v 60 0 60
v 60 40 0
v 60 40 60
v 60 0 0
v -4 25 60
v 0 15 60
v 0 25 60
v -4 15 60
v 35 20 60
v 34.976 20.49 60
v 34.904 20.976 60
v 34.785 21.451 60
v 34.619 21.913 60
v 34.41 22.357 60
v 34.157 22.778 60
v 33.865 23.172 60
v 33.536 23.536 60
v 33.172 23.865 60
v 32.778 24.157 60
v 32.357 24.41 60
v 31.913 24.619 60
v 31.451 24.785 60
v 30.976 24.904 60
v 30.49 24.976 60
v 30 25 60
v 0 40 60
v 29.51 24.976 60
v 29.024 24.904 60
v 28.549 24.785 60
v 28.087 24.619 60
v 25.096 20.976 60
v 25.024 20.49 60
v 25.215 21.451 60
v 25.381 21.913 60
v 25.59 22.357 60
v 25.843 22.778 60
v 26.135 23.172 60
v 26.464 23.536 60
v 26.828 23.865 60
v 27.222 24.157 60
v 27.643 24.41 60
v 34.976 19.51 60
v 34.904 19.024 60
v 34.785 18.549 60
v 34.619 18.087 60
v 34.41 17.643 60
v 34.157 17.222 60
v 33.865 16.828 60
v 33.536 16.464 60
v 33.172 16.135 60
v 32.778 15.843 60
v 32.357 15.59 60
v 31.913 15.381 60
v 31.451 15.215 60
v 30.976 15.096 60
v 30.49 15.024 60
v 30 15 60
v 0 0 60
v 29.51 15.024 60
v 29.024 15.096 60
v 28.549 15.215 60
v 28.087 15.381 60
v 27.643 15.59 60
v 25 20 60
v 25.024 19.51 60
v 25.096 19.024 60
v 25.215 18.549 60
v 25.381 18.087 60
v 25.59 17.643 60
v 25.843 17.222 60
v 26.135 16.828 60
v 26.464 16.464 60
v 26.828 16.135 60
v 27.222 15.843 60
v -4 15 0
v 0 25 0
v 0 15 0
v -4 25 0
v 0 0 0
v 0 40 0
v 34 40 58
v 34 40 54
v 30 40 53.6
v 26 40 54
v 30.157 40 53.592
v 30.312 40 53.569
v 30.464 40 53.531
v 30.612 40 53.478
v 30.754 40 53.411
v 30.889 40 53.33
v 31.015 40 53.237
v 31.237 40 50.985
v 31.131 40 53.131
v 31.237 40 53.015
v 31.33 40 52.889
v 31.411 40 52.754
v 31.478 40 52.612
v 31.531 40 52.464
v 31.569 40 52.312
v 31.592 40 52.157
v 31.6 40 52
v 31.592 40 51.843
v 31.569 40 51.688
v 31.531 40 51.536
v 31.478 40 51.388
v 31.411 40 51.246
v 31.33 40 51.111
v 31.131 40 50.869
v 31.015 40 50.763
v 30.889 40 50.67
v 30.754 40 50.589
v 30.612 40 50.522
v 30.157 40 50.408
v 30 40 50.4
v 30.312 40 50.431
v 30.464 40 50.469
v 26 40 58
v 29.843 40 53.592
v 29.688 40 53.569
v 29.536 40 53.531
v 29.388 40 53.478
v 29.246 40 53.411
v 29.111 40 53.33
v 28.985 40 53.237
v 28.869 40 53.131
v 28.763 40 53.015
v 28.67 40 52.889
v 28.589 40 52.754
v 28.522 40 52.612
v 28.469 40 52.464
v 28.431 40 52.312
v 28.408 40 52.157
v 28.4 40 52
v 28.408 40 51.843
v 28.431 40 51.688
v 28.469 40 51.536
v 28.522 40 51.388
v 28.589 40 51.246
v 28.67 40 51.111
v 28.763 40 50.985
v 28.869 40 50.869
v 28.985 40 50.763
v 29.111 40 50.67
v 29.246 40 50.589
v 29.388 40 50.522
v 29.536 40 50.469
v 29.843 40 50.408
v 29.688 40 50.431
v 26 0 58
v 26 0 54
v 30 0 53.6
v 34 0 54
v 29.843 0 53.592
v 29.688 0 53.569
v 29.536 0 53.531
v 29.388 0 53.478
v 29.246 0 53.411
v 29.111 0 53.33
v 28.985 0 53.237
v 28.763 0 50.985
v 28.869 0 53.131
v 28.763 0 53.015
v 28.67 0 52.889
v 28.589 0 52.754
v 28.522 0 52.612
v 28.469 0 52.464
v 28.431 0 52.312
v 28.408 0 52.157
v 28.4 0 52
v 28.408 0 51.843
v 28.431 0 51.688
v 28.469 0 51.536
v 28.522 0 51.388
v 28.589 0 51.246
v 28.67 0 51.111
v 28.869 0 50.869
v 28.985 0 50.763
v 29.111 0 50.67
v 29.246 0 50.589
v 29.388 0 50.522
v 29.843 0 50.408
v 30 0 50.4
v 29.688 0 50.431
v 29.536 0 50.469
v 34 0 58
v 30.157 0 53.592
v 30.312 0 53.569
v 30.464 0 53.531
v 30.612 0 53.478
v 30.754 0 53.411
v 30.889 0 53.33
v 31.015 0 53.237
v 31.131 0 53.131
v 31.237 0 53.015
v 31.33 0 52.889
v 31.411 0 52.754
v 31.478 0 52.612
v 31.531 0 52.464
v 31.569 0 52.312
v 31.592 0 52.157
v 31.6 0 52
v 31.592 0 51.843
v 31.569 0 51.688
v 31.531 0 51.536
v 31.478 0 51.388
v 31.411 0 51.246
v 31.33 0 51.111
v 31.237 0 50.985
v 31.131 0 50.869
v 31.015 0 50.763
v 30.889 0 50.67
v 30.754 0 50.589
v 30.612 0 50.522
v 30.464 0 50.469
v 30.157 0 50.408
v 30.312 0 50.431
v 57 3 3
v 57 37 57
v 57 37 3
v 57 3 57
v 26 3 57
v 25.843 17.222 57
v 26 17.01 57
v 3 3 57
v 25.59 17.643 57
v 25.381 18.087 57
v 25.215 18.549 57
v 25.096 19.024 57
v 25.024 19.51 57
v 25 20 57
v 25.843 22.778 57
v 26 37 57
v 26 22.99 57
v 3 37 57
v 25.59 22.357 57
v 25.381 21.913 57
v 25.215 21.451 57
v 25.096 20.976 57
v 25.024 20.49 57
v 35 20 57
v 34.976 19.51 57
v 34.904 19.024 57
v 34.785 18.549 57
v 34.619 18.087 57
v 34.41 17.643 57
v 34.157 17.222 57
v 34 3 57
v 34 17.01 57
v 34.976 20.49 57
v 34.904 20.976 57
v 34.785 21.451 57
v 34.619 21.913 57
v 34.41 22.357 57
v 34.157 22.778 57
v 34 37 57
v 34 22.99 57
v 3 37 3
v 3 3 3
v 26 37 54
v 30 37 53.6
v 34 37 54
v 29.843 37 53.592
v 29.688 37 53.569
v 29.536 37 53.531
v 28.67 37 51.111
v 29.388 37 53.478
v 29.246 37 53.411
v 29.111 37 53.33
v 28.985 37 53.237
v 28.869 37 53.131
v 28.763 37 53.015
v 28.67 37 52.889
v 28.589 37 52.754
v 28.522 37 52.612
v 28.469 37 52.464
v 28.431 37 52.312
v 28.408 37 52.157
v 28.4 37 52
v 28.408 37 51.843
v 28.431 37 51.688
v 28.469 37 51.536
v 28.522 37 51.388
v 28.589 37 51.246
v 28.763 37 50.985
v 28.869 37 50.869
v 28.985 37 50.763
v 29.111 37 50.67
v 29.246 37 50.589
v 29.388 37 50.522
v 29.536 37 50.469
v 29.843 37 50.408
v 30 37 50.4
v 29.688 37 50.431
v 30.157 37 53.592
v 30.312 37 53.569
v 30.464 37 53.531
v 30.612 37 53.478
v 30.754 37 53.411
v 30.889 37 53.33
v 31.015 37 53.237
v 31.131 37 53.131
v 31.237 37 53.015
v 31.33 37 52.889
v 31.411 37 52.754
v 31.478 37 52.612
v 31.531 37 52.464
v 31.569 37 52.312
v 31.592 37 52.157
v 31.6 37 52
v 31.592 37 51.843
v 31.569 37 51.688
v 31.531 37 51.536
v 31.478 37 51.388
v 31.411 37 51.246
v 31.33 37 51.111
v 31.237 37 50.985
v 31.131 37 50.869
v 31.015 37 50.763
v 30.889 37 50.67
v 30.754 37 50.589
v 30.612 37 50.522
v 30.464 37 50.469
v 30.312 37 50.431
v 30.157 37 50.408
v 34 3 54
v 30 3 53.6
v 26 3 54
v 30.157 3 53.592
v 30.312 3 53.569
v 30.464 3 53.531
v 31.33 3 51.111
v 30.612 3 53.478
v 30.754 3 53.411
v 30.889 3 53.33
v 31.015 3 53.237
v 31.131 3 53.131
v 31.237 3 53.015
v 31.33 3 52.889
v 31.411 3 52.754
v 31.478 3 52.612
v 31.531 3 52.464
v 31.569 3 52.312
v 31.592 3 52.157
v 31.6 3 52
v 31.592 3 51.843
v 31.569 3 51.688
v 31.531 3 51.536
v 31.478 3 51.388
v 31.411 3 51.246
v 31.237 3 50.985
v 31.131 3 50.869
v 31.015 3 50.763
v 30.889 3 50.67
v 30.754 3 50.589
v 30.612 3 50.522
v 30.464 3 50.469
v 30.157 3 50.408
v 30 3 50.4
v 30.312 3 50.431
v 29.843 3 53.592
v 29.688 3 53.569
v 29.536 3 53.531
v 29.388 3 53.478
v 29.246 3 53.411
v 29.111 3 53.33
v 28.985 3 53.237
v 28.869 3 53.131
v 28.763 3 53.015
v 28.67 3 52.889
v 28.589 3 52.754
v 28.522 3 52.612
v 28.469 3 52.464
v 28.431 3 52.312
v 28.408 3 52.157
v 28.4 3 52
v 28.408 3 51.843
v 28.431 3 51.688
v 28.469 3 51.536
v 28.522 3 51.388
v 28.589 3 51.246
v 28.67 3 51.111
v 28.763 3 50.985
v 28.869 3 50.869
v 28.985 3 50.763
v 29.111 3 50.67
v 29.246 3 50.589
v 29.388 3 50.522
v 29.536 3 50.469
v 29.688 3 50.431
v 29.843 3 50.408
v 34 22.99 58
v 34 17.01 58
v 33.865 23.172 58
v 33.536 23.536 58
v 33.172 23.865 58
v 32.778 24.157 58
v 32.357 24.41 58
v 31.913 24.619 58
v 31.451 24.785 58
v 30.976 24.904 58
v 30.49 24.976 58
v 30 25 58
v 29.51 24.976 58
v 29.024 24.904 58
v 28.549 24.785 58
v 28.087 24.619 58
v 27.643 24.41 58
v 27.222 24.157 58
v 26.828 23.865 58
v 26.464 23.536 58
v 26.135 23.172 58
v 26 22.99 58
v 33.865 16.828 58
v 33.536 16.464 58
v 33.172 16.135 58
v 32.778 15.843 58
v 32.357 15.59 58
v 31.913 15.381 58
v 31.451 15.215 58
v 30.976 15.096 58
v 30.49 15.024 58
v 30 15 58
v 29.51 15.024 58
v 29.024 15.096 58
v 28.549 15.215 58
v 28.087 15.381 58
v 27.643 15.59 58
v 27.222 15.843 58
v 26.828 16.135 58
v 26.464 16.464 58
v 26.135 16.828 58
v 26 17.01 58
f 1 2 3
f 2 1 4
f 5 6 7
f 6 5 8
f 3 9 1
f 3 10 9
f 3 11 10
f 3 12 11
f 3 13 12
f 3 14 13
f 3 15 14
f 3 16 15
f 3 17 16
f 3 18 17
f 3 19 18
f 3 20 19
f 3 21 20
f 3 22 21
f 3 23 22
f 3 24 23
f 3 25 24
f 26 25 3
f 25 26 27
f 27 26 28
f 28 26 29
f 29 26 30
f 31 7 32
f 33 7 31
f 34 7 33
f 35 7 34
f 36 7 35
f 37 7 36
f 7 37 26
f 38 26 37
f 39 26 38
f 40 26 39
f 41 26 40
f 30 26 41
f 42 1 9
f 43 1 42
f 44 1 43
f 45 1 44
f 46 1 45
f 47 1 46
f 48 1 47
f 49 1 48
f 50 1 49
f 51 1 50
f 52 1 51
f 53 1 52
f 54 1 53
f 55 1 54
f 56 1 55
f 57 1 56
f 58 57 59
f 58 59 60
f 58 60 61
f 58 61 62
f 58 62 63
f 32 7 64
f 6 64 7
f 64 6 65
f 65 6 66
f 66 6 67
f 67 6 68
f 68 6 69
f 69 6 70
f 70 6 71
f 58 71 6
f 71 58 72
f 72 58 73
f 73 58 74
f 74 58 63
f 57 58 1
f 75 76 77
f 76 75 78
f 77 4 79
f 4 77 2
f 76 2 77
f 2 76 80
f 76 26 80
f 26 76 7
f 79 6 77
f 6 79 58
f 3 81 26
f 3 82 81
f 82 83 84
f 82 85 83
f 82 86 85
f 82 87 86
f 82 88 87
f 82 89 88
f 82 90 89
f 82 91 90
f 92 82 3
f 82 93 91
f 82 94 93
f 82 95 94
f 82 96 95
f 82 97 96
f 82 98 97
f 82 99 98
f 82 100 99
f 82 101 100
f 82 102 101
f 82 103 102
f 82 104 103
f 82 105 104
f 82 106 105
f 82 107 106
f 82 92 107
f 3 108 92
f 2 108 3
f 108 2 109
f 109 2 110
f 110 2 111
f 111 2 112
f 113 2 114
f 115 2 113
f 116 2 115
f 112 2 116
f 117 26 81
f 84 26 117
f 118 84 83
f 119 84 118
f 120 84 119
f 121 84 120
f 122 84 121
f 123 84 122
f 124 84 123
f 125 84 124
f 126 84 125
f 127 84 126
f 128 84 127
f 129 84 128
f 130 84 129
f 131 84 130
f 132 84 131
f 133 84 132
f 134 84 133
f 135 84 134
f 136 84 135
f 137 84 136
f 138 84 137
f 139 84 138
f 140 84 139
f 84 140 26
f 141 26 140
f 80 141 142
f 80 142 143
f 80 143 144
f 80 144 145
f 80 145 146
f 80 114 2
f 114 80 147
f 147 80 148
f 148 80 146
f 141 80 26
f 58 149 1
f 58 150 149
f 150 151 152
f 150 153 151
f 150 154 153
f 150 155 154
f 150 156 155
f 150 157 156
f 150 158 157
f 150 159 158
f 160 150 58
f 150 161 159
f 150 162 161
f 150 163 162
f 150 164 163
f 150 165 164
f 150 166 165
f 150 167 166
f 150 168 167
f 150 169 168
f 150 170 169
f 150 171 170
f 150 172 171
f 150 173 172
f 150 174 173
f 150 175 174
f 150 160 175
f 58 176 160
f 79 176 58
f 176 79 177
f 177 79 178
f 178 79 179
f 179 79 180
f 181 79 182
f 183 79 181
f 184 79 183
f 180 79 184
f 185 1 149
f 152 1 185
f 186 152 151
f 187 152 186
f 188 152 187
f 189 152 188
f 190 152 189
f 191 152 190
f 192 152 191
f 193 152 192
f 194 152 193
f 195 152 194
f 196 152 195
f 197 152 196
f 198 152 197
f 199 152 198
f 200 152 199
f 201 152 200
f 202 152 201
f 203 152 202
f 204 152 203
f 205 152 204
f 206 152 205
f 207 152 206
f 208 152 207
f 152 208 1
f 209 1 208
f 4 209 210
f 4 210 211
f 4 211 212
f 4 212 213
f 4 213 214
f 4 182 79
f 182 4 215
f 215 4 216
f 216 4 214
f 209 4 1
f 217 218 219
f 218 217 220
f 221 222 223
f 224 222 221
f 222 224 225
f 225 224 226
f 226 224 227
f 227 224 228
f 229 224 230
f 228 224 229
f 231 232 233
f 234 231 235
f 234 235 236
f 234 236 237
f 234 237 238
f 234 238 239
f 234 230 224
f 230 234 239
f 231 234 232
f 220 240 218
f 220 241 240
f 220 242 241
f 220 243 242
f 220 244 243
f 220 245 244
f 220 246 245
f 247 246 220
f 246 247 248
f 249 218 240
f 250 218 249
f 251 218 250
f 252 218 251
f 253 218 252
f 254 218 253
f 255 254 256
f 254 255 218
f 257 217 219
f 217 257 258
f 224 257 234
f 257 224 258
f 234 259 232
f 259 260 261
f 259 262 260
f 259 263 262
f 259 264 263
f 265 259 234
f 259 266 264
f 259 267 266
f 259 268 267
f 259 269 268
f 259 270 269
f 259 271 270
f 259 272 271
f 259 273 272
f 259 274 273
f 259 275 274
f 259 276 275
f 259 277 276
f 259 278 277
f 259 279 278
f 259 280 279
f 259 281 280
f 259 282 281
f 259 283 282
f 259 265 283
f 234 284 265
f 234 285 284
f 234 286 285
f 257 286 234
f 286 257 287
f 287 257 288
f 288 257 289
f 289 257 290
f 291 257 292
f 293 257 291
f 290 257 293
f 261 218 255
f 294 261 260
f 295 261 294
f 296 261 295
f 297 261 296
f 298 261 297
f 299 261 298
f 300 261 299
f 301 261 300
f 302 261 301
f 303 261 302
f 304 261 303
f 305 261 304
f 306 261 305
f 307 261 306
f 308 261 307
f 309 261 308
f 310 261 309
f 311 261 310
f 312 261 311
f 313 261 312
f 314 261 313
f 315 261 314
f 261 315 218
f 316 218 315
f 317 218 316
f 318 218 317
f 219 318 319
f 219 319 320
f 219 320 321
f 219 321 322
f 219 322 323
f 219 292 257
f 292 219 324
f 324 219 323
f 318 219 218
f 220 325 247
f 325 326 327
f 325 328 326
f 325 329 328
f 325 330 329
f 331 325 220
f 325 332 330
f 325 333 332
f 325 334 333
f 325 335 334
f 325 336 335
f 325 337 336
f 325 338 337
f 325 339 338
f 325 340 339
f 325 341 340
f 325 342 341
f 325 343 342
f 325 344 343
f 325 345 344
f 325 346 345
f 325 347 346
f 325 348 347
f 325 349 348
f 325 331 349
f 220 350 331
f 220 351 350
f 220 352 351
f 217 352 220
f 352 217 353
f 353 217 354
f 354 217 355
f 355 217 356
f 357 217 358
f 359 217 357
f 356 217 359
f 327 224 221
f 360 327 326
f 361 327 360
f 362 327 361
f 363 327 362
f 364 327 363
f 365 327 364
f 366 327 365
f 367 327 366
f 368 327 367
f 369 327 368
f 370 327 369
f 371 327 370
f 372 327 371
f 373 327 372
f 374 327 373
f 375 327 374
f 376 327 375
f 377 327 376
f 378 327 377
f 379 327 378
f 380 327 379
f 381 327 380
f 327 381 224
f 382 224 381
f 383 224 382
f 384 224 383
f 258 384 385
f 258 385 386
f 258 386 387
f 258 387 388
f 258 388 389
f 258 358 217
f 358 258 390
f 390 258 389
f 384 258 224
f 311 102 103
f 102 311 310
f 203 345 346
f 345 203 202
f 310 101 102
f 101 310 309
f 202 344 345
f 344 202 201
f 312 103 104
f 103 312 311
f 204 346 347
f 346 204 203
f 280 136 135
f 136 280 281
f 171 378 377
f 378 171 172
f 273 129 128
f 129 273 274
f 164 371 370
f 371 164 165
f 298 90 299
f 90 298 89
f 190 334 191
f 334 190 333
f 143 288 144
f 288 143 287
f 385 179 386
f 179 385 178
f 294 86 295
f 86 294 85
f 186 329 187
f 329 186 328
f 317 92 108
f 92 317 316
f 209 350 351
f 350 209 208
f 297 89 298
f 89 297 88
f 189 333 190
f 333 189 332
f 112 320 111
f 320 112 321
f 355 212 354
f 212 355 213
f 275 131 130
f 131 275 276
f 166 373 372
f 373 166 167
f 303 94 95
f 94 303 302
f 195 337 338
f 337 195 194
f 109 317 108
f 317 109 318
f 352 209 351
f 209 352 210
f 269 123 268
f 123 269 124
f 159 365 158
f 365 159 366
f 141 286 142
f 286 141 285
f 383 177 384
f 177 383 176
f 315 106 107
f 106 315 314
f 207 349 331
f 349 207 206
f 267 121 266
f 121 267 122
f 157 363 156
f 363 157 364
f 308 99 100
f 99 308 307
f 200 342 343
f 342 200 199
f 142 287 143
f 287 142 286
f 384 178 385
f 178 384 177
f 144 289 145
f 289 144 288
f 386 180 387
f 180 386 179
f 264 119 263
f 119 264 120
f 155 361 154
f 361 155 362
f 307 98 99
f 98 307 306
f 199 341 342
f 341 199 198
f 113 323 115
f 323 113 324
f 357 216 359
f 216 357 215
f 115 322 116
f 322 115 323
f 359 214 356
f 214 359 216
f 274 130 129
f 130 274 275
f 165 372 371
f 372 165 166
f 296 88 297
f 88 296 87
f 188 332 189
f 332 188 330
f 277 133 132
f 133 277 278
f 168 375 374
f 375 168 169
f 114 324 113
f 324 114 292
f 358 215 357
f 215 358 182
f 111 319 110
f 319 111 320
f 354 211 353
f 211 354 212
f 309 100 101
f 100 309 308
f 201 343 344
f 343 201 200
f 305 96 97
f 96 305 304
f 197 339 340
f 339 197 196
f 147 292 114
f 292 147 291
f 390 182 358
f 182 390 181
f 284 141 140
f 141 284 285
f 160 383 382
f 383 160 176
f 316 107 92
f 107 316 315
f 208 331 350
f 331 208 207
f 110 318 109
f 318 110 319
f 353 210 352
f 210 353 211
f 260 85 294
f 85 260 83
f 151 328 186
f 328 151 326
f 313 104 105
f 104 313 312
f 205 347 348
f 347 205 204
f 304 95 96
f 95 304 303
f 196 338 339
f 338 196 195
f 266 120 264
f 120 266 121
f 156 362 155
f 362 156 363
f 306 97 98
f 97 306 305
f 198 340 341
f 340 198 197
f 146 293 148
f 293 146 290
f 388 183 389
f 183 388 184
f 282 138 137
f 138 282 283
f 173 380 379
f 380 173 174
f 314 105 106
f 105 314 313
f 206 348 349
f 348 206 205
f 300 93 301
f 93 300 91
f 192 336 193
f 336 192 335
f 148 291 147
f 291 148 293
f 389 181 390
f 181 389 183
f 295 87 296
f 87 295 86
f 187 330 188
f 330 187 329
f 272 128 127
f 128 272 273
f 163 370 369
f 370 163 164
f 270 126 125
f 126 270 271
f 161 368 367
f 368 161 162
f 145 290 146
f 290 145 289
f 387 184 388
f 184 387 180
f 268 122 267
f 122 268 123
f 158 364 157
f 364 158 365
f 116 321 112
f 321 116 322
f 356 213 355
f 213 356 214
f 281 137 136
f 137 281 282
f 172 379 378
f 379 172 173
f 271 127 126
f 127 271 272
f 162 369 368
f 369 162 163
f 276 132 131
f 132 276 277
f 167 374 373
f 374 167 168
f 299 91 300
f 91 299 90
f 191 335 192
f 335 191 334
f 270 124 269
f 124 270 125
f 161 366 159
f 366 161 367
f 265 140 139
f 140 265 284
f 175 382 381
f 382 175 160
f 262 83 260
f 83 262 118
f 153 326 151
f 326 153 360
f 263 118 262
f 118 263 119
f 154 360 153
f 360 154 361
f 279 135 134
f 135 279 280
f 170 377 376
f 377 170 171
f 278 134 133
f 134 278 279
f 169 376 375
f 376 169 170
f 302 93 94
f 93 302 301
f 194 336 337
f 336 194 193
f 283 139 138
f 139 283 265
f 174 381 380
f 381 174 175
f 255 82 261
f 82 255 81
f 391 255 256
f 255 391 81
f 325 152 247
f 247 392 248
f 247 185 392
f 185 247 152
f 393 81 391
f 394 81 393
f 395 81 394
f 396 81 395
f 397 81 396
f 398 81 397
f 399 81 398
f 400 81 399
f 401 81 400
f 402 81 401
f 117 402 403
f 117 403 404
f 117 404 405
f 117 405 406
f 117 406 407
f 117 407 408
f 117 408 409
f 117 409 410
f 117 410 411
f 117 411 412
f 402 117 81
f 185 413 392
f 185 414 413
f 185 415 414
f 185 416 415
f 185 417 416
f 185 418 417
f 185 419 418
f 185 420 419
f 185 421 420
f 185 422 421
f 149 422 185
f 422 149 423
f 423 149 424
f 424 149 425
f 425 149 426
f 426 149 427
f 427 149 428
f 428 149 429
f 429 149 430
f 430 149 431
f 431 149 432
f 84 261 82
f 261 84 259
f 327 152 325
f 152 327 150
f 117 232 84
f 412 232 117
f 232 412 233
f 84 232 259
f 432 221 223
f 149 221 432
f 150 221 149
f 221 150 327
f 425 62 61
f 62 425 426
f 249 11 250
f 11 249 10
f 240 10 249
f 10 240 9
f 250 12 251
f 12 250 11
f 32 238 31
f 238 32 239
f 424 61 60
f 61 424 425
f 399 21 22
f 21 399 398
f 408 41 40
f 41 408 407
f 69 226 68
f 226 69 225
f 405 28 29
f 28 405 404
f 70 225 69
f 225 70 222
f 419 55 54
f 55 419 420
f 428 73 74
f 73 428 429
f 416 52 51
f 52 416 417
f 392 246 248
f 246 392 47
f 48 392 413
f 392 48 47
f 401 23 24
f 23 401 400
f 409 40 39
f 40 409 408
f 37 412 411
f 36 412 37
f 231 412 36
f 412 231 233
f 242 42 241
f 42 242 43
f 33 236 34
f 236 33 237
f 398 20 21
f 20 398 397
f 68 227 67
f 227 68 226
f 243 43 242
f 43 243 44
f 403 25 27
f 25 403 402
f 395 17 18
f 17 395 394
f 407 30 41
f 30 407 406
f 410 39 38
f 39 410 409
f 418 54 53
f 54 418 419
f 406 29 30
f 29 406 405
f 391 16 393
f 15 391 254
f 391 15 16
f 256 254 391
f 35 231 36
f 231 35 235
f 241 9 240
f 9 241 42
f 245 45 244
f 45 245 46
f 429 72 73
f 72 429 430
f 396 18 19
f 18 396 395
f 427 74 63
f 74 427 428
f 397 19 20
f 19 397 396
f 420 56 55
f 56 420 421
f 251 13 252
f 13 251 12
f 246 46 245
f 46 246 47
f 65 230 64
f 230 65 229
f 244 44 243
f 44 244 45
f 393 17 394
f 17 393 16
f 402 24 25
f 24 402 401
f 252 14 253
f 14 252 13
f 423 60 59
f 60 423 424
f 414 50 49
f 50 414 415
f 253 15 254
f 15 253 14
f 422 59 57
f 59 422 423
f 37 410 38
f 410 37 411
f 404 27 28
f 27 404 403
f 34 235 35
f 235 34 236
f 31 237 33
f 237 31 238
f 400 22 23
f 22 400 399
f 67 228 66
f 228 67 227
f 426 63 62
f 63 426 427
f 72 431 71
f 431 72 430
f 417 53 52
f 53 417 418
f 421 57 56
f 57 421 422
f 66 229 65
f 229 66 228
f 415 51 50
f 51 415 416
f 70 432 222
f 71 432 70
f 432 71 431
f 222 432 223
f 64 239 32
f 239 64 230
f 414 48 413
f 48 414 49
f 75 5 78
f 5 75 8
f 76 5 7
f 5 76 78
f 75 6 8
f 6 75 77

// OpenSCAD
// file: 00_common.scad
// vertical-lift-bridge :: COMMON PARAMETERS
// All dimensions in millimetres. Imported by every part file.
// Ratified parameters from audit Q1–Q7. Do not edit without group approval.

// ==== BUILD VOLUME ====
PRINTER_X = 220;
PRINTER_Y = 220;
PRINTER_Z = 250;
$fn = 64;  // smoothness for production prints

// ==== OVERALL FOOTPRINT ====
FOOTPRINT_X = 1200;        // along the road / cable axis
FOOTPRINT_Y = 600;         // across the river
BASE_T      = 6;           // base panel thickness
WATERWAY_W  = 200;         // navigable channel width

// ==== TOWERS ====
TOWER_H        = 350;       // total height (split-printed in 2 sections)
TOWER_SPLIT    = 175;       // join height
TOWER_W        = 90;        // width
TOWER_D        = 60;        // depth
TOWER_WALL     = 4;         // wall thickness
TOWER_INNER_W  = TOWER_W - 2*TOWER_WALL;
TOWER_INNER_D  = TOWER_D - 2*TOWER_WALL;
TOWER_SPACING  = 800;       // tower-to-tower centre distance

// ==== DECK ====
DECK_L  = 200;              // along the road
DECK_W  = 120;              // across the road
DECK_T  = 6;                // thickness
DECK_LIFT = 180;            // vertical travel

// ==== COUNTERWEIGHT ====
CW_L  = 60;
CW_W  = 40;
CW_H  = 60;
CW_WALL = 3;
CW_NUT_POCKET_D = 14;       // M8 nut across-flats + clearance
CW_NUT_POCKET_H = 8;

// ==== PULLEY ====
PULLEY_D       = 50;
PULLEY_BORE    = 6.2;       // 6 mm shaft + 0.2 clearance
PULLEY_W       = 20;
PULLEY_GROOVE_D = 1.4;      // 1 mm cable + 0.4 clearance
PULLEY_HUB_D   = 12;
PULLEY_HUB_H   = 8;

// ==== MOTOR ====
MOTOR_BODY_D   = 25;        // JGA25-370 body
MOTOR_BODY_L   = 32;
MOTOR_GEARBOX_L = 19;
MOTOR_SHAFT_D  = 6.2;       // 6 mm shaft + 0.2 clearance
MOTOR_FLAT_W   = 5.5;
MOTOR_MOUNT_W  = 35;
MOTOR_MOUNT_T  = 5;
MOTOR_MOUNT_HOLE_D = 3.2;   // M3 clearance

// ==== CABLE GUIDE ====
CABLE_GUIDE_W = 40;
CABLE_GUIDE_D = 30;
CABLE_GUIDE_H = 25;
CABLE_GUIDE_GROOVE_R = 0.7; // half of 1.4 cable channel

// ==== ROAD BARRIER ====
BARRIER_L = 80;
BARRIER_W = 15;
BARRIER_T = 8;
BARRIER_SERVO_HORN_D = 6;

// ==== PCB ENCLOSURE ====
PCB_X = 100;
PCB_Y = 80;
PCB_T = 1.6;
ENC_WALL = 2.5;
ENC_GAP  = 0.3;
ENC_PCB_STANDOFF_H = 5;
ENC_LID_H = 8;
ENC_BASE_H = PCB_T + ENC_PCB_STANDOFF_H + 8;
ENC_OUTER_X = PCB_X + 2*(ENC_WALL + ENC_GAP);
ENC_OUTER_Y = PCB_Y + 2*(ENC_WALL + ENC_GAP);

// ==== CAMERA MOUNT (ESP32-CAM AI-Thinker) ====
CAM_BOARD_X = 40.5;
CAM_BOARD_Y = 27;
CAM_BOARD_T = 1.6;
CAM_LENS_D  = 9.5;
CAM_GANTRY_H = 220;          // height above road for FOV
CAM_TILT_DEG = 25;

// ==== TFT DISPLAY MOUNT ====
// 2.8" ILI9341 with XPT2046 — common module 86×56×4 mm with 8 mm header on one side
TFT_BOARD_X = 86;
TFT_BOARD_Y = 56;
TFT_BOARD_T = 4;
TFT_VISIBLE_X = 58;          // active area
TFT_VISIBLE_Y = 44;
TFT_TILT_DEG = 35;           // Q5 ratified — 35° tilt
TFT_BEZEL = 5;
TFT_BACK_DEPTH = 18;         // header height behind board

// ==== HARDWARE ====
M3_CLEAR  = 3.2;
M3_TAP    = 2.8;
M3_HEAD_D = 6.0;
M3_HEAD_H = 3.0;
M3_INSERT_D = 4.2;           // brass heat-set insert OD
M3_INSERT_H = 5.0;
M8_BOLT_D = 8.4;
// main file
// 05_counterweight_right.scad — RIGHT counterweight (mirror of left)
include <00_common.scad>

module counterweight_right() {
    difference() {
        cube([CW_L, CW_W, CW_H]);
        translate([CW_WALL, CW_WALL, CW_WALL])
            cube([CW_L - 2*CW_WALL, CW_W - 2*CW_WALL, CW_H - 2*CW_WALL]);
        translate([CW_L/2, -0.1, CW_H - 8])
            rotate([-90,0,0]) cylinder(d=3.2, h=CW_W + 0.2);
        translate([CW_L/2 - 4, -0.1, CW_H - 6])
            cube([8, CW_W + 0.2, 4]);
        translate([CW_L/2, CW_W/2, CW_H - CW_WALL - 0.1])
            cylinder(d=10, h=CW_WALL + 0.2);
    }
    // T-slot rib on opposite face
    translate([-4, CW_W/2 - 5, 0])
        cube([4, 10, CW_H]);
}

counterweight_right();
